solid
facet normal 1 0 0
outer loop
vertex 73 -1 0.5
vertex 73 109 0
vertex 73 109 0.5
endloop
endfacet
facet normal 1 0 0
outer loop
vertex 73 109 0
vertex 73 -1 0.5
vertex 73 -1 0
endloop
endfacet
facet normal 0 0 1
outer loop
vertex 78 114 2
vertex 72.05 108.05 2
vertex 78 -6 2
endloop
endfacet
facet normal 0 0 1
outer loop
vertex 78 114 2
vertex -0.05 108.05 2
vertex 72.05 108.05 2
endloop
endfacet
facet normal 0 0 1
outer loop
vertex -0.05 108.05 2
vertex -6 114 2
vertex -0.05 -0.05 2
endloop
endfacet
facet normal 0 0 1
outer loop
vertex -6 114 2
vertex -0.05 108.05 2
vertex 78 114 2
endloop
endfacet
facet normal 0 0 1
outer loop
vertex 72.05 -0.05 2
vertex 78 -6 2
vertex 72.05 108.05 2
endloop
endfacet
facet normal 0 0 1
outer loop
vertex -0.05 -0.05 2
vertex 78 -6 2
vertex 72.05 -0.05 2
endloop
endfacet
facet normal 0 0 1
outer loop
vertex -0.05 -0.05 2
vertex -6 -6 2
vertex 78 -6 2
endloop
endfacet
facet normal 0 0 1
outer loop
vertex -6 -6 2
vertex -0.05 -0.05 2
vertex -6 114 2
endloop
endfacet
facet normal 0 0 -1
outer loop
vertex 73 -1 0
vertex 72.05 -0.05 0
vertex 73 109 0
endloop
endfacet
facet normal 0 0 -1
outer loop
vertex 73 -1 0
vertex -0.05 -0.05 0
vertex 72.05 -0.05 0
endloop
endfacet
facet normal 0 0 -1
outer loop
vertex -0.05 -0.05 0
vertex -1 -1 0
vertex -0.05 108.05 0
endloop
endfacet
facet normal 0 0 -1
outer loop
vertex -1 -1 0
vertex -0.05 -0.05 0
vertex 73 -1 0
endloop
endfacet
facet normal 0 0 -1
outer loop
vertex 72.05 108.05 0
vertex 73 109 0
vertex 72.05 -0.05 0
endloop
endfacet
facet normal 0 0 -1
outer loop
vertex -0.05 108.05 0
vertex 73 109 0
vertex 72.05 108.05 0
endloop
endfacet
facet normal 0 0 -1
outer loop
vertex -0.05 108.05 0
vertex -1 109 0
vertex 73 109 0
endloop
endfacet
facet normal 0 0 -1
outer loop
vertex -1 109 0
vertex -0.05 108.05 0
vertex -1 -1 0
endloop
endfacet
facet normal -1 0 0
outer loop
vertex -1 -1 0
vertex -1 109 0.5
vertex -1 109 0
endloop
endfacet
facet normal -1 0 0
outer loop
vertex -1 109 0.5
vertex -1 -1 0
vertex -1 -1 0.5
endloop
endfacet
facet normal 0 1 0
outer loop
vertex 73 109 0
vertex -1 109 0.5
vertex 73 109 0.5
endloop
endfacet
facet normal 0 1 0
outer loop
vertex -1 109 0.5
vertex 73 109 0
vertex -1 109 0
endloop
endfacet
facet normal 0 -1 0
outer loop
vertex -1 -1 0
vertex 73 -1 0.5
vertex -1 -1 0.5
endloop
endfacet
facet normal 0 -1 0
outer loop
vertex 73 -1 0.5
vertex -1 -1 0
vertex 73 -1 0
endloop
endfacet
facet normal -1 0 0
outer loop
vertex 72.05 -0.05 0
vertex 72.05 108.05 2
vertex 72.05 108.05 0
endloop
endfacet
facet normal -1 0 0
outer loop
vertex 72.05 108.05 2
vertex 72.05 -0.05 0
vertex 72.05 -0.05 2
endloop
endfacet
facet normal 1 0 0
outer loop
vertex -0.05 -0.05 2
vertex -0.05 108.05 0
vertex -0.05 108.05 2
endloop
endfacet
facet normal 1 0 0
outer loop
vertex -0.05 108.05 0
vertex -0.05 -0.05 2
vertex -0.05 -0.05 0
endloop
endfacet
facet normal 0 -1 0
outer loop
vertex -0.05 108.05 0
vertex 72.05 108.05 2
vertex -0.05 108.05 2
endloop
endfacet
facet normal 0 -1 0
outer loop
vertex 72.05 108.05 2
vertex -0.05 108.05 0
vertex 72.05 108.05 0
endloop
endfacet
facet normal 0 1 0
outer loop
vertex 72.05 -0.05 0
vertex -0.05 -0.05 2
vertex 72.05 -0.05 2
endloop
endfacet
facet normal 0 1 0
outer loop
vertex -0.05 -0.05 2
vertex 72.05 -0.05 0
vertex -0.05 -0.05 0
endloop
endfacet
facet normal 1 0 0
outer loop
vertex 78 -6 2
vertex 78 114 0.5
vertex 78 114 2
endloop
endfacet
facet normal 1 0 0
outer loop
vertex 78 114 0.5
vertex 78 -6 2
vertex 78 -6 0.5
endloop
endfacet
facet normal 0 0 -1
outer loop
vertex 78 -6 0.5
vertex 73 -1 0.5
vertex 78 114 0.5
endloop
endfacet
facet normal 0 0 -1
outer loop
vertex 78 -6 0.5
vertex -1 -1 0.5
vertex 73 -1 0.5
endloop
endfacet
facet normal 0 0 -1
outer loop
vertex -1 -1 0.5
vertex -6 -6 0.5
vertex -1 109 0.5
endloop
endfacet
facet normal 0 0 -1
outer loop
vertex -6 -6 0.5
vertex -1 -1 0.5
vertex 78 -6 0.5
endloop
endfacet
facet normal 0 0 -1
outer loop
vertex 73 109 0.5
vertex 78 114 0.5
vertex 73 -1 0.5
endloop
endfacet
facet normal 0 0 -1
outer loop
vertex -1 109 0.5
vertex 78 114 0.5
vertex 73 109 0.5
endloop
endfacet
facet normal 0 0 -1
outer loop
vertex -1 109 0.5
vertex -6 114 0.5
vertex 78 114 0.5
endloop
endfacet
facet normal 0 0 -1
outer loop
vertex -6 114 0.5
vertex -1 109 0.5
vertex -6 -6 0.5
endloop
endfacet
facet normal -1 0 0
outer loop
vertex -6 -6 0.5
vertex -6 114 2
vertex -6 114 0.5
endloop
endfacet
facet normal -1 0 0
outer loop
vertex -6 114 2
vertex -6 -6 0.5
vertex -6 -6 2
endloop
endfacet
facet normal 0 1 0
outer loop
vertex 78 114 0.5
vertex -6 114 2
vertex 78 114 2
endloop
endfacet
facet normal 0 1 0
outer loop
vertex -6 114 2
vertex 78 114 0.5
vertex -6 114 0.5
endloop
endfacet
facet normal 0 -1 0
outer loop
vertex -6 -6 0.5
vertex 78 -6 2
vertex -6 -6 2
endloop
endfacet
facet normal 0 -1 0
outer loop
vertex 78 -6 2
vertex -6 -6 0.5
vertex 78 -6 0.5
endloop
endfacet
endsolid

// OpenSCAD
// Generated by SolidPython 1.0.4 on 2020-12-12 15:58:21


union() {
	difference() {
		translate(v = [-1.0000000000, -1.0000000000, 0]) {
			cube(size = [74.0000000000, 110.0000000000, 2]);
		}
		translate(v = [-0.0500000000, -0.0500000000, 0]) {
			cube(size = [72.1000000000, 108.1000000000, 2]);
		}
	}
	translate(v = [0, 0, 0.5000000000]) {
		difference() {
			translate(v = [-6.0000000000, -6.0000000000, 0]) {
				cube(size = [84.0000000000, 120.0000000000, 1.5000000000]);
			}
			translate(v = [-1.0000000000, -1.0000000000, 0]) {
				cube(size = [74.0000000000, 110.0000000000, 1.5000000000]);
			}
		}
	}
}
